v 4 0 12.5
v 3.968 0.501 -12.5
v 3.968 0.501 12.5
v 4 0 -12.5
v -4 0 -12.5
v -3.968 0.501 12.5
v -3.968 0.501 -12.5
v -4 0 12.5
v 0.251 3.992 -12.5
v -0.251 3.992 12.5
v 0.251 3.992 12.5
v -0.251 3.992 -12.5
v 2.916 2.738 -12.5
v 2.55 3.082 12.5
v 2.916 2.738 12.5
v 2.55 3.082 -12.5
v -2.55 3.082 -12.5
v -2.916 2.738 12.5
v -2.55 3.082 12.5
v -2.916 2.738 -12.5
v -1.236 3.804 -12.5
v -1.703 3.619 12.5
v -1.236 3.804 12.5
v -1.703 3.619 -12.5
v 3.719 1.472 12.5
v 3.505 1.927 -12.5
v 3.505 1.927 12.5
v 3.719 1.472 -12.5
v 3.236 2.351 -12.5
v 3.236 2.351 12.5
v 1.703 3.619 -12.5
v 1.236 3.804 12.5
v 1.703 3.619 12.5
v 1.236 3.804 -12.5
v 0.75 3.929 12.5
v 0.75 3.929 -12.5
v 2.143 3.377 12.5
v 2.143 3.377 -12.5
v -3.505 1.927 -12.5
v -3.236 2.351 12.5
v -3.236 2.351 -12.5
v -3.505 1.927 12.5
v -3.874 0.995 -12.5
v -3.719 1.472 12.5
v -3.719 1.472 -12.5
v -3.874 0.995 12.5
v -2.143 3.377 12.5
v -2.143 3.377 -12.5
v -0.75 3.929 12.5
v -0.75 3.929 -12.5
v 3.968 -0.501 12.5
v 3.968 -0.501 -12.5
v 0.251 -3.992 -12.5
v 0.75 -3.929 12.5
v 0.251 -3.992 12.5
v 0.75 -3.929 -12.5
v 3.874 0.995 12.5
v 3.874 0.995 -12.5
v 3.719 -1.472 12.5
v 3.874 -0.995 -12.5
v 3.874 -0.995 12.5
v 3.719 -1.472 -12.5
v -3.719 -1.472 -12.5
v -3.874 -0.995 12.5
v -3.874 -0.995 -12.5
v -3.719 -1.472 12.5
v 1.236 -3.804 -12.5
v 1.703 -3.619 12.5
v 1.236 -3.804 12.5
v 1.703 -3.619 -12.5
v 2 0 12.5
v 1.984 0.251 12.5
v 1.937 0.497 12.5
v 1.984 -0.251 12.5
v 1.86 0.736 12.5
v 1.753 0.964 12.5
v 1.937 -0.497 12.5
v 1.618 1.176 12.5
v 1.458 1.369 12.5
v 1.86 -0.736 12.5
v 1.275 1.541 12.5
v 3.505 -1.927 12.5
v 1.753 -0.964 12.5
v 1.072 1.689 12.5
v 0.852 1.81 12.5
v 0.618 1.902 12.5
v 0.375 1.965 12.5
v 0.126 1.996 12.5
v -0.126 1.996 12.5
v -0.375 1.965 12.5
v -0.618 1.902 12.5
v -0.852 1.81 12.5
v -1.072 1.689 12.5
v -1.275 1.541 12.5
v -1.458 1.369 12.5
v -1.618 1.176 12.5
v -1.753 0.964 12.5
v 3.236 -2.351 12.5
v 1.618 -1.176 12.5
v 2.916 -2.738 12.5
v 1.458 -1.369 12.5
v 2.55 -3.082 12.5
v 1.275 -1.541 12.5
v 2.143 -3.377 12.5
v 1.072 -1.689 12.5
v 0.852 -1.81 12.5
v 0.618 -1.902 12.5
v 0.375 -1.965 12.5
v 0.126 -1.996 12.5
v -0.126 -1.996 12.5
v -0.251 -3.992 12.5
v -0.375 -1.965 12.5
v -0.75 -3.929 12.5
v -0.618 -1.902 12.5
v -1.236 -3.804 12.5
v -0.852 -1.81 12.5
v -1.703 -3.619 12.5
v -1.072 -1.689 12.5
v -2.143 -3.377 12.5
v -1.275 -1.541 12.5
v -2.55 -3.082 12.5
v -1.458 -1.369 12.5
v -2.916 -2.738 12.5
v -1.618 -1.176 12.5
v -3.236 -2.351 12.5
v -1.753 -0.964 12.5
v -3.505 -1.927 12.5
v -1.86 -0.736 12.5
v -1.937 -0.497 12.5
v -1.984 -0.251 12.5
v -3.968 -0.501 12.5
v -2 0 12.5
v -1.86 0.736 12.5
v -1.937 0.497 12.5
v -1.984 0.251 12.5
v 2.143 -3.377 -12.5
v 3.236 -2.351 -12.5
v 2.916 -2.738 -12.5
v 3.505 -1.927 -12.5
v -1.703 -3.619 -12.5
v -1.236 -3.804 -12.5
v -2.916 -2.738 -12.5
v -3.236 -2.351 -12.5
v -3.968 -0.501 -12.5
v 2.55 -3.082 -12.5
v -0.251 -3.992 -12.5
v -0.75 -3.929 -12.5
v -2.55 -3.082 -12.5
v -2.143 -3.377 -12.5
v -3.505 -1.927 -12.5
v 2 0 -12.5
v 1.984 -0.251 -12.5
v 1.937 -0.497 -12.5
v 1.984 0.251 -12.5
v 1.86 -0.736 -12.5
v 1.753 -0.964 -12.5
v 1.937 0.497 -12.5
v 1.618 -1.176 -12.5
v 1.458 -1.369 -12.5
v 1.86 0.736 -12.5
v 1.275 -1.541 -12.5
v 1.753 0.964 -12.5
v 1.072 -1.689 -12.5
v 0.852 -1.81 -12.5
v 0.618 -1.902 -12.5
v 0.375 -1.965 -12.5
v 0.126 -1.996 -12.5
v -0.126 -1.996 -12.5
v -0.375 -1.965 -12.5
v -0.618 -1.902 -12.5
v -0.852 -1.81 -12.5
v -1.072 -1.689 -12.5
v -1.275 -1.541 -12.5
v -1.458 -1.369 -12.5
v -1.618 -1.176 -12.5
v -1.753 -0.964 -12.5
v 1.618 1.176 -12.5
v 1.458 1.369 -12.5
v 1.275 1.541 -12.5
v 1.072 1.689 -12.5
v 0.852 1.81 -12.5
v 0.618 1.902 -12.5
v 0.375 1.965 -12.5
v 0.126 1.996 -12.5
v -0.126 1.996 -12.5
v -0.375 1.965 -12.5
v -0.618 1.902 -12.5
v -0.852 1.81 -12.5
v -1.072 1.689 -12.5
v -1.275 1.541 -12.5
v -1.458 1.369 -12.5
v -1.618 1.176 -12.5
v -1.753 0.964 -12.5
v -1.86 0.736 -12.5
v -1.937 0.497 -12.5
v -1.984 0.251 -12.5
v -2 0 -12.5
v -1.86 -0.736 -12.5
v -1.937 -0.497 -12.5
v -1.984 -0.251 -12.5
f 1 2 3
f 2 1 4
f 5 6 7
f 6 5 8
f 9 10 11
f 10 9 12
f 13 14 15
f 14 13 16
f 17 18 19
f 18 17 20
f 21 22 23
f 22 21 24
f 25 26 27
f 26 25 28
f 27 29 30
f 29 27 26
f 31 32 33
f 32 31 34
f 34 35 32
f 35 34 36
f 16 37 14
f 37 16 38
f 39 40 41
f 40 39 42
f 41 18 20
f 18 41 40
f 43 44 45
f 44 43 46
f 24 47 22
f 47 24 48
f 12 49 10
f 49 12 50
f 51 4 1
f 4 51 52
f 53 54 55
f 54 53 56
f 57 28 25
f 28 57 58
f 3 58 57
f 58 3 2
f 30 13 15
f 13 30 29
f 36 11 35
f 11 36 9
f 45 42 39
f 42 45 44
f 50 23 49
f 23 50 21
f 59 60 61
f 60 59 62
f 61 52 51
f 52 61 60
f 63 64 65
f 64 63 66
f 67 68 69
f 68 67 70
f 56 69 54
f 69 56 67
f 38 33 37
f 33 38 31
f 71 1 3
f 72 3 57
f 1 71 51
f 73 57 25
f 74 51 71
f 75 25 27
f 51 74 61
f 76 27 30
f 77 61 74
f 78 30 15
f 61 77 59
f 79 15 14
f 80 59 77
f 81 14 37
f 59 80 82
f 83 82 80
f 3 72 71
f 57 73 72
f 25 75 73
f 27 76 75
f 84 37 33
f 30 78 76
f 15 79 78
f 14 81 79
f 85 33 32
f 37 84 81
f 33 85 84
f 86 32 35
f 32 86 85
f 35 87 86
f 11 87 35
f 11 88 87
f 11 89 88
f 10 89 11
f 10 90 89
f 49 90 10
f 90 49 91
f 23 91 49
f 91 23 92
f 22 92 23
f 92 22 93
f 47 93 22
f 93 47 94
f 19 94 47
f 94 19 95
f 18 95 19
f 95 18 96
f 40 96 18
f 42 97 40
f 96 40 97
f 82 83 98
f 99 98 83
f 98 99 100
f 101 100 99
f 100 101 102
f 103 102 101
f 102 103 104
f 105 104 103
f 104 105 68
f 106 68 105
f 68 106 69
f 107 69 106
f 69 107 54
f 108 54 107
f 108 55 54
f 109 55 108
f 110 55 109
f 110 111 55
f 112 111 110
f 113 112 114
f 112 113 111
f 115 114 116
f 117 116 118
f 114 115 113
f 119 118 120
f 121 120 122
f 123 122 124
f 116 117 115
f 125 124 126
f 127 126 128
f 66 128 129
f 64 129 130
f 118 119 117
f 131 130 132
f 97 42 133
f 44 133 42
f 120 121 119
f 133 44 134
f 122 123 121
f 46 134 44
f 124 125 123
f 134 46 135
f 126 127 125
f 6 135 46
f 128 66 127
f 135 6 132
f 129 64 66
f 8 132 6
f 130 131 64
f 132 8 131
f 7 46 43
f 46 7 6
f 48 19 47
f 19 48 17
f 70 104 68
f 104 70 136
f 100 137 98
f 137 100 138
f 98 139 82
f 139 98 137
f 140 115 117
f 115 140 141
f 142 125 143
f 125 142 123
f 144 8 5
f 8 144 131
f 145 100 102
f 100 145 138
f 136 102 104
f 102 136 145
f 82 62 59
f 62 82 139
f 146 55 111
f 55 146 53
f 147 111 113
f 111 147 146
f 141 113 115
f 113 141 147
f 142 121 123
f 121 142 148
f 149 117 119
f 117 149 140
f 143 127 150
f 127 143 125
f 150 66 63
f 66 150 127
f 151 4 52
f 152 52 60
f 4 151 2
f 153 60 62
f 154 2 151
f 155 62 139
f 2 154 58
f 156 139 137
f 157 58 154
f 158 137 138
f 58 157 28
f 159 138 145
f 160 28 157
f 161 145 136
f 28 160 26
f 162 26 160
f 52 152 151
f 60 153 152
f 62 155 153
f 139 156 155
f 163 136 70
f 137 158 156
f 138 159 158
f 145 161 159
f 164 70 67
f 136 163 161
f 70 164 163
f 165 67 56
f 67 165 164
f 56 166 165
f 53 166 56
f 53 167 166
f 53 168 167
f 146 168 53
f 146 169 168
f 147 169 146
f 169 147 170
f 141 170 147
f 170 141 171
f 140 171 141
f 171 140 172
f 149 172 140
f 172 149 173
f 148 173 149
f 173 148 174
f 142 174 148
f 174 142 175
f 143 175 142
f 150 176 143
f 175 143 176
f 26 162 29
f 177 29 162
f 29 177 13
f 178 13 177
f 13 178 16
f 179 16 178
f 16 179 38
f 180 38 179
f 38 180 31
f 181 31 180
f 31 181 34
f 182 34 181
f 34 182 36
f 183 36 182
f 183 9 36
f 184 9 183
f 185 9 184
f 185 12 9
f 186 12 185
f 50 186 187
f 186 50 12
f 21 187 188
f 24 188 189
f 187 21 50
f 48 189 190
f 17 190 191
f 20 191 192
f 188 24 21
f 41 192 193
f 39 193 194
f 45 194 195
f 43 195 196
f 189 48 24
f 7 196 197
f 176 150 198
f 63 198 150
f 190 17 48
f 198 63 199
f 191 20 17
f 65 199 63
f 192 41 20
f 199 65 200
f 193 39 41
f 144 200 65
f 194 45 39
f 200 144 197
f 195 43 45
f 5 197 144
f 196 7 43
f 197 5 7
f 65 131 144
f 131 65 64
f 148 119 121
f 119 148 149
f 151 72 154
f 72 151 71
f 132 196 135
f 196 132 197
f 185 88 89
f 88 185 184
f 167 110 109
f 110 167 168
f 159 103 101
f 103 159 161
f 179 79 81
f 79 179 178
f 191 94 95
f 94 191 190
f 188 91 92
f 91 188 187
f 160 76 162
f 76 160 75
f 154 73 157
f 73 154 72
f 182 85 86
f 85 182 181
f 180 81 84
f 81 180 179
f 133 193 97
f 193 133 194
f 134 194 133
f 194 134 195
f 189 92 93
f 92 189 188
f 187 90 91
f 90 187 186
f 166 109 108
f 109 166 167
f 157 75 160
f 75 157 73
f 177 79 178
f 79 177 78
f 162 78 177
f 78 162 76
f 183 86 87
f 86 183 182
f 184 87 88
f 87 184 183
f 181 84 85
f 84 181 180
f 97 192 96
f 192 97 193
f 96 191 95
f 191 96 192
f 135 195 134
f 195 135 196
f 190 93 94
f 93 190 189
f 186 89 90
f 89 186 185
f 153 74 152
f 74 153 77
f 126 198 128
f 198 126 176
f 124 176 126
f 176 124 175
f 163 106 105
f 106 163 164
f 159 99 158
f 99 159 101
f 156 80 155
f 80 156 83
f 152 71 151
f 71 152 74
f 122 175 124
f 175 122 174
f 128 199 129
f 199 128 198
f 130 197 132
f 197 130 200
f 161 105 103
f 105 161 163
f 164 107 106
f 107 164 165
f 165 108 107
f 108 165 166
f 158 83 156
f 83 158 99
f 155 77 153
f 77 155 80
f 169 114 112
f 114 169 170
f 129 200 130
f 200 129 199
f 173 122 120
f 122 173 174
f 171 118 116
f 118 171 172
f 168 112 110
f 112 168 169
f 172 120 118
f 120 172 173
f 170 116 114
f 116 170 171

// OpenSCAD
$fn = 50;


difference() {
	union() {
		translate(v = [0, 0, -12.5000000000]) {
			cylinder(h = 25, r = 4.0000000000);
		}
	}
	union() {
		translate(v = [0, 0, -100.0000000000]) {
			cylinder(h = 200, r = 2.0000000000);
		}
	}
}
